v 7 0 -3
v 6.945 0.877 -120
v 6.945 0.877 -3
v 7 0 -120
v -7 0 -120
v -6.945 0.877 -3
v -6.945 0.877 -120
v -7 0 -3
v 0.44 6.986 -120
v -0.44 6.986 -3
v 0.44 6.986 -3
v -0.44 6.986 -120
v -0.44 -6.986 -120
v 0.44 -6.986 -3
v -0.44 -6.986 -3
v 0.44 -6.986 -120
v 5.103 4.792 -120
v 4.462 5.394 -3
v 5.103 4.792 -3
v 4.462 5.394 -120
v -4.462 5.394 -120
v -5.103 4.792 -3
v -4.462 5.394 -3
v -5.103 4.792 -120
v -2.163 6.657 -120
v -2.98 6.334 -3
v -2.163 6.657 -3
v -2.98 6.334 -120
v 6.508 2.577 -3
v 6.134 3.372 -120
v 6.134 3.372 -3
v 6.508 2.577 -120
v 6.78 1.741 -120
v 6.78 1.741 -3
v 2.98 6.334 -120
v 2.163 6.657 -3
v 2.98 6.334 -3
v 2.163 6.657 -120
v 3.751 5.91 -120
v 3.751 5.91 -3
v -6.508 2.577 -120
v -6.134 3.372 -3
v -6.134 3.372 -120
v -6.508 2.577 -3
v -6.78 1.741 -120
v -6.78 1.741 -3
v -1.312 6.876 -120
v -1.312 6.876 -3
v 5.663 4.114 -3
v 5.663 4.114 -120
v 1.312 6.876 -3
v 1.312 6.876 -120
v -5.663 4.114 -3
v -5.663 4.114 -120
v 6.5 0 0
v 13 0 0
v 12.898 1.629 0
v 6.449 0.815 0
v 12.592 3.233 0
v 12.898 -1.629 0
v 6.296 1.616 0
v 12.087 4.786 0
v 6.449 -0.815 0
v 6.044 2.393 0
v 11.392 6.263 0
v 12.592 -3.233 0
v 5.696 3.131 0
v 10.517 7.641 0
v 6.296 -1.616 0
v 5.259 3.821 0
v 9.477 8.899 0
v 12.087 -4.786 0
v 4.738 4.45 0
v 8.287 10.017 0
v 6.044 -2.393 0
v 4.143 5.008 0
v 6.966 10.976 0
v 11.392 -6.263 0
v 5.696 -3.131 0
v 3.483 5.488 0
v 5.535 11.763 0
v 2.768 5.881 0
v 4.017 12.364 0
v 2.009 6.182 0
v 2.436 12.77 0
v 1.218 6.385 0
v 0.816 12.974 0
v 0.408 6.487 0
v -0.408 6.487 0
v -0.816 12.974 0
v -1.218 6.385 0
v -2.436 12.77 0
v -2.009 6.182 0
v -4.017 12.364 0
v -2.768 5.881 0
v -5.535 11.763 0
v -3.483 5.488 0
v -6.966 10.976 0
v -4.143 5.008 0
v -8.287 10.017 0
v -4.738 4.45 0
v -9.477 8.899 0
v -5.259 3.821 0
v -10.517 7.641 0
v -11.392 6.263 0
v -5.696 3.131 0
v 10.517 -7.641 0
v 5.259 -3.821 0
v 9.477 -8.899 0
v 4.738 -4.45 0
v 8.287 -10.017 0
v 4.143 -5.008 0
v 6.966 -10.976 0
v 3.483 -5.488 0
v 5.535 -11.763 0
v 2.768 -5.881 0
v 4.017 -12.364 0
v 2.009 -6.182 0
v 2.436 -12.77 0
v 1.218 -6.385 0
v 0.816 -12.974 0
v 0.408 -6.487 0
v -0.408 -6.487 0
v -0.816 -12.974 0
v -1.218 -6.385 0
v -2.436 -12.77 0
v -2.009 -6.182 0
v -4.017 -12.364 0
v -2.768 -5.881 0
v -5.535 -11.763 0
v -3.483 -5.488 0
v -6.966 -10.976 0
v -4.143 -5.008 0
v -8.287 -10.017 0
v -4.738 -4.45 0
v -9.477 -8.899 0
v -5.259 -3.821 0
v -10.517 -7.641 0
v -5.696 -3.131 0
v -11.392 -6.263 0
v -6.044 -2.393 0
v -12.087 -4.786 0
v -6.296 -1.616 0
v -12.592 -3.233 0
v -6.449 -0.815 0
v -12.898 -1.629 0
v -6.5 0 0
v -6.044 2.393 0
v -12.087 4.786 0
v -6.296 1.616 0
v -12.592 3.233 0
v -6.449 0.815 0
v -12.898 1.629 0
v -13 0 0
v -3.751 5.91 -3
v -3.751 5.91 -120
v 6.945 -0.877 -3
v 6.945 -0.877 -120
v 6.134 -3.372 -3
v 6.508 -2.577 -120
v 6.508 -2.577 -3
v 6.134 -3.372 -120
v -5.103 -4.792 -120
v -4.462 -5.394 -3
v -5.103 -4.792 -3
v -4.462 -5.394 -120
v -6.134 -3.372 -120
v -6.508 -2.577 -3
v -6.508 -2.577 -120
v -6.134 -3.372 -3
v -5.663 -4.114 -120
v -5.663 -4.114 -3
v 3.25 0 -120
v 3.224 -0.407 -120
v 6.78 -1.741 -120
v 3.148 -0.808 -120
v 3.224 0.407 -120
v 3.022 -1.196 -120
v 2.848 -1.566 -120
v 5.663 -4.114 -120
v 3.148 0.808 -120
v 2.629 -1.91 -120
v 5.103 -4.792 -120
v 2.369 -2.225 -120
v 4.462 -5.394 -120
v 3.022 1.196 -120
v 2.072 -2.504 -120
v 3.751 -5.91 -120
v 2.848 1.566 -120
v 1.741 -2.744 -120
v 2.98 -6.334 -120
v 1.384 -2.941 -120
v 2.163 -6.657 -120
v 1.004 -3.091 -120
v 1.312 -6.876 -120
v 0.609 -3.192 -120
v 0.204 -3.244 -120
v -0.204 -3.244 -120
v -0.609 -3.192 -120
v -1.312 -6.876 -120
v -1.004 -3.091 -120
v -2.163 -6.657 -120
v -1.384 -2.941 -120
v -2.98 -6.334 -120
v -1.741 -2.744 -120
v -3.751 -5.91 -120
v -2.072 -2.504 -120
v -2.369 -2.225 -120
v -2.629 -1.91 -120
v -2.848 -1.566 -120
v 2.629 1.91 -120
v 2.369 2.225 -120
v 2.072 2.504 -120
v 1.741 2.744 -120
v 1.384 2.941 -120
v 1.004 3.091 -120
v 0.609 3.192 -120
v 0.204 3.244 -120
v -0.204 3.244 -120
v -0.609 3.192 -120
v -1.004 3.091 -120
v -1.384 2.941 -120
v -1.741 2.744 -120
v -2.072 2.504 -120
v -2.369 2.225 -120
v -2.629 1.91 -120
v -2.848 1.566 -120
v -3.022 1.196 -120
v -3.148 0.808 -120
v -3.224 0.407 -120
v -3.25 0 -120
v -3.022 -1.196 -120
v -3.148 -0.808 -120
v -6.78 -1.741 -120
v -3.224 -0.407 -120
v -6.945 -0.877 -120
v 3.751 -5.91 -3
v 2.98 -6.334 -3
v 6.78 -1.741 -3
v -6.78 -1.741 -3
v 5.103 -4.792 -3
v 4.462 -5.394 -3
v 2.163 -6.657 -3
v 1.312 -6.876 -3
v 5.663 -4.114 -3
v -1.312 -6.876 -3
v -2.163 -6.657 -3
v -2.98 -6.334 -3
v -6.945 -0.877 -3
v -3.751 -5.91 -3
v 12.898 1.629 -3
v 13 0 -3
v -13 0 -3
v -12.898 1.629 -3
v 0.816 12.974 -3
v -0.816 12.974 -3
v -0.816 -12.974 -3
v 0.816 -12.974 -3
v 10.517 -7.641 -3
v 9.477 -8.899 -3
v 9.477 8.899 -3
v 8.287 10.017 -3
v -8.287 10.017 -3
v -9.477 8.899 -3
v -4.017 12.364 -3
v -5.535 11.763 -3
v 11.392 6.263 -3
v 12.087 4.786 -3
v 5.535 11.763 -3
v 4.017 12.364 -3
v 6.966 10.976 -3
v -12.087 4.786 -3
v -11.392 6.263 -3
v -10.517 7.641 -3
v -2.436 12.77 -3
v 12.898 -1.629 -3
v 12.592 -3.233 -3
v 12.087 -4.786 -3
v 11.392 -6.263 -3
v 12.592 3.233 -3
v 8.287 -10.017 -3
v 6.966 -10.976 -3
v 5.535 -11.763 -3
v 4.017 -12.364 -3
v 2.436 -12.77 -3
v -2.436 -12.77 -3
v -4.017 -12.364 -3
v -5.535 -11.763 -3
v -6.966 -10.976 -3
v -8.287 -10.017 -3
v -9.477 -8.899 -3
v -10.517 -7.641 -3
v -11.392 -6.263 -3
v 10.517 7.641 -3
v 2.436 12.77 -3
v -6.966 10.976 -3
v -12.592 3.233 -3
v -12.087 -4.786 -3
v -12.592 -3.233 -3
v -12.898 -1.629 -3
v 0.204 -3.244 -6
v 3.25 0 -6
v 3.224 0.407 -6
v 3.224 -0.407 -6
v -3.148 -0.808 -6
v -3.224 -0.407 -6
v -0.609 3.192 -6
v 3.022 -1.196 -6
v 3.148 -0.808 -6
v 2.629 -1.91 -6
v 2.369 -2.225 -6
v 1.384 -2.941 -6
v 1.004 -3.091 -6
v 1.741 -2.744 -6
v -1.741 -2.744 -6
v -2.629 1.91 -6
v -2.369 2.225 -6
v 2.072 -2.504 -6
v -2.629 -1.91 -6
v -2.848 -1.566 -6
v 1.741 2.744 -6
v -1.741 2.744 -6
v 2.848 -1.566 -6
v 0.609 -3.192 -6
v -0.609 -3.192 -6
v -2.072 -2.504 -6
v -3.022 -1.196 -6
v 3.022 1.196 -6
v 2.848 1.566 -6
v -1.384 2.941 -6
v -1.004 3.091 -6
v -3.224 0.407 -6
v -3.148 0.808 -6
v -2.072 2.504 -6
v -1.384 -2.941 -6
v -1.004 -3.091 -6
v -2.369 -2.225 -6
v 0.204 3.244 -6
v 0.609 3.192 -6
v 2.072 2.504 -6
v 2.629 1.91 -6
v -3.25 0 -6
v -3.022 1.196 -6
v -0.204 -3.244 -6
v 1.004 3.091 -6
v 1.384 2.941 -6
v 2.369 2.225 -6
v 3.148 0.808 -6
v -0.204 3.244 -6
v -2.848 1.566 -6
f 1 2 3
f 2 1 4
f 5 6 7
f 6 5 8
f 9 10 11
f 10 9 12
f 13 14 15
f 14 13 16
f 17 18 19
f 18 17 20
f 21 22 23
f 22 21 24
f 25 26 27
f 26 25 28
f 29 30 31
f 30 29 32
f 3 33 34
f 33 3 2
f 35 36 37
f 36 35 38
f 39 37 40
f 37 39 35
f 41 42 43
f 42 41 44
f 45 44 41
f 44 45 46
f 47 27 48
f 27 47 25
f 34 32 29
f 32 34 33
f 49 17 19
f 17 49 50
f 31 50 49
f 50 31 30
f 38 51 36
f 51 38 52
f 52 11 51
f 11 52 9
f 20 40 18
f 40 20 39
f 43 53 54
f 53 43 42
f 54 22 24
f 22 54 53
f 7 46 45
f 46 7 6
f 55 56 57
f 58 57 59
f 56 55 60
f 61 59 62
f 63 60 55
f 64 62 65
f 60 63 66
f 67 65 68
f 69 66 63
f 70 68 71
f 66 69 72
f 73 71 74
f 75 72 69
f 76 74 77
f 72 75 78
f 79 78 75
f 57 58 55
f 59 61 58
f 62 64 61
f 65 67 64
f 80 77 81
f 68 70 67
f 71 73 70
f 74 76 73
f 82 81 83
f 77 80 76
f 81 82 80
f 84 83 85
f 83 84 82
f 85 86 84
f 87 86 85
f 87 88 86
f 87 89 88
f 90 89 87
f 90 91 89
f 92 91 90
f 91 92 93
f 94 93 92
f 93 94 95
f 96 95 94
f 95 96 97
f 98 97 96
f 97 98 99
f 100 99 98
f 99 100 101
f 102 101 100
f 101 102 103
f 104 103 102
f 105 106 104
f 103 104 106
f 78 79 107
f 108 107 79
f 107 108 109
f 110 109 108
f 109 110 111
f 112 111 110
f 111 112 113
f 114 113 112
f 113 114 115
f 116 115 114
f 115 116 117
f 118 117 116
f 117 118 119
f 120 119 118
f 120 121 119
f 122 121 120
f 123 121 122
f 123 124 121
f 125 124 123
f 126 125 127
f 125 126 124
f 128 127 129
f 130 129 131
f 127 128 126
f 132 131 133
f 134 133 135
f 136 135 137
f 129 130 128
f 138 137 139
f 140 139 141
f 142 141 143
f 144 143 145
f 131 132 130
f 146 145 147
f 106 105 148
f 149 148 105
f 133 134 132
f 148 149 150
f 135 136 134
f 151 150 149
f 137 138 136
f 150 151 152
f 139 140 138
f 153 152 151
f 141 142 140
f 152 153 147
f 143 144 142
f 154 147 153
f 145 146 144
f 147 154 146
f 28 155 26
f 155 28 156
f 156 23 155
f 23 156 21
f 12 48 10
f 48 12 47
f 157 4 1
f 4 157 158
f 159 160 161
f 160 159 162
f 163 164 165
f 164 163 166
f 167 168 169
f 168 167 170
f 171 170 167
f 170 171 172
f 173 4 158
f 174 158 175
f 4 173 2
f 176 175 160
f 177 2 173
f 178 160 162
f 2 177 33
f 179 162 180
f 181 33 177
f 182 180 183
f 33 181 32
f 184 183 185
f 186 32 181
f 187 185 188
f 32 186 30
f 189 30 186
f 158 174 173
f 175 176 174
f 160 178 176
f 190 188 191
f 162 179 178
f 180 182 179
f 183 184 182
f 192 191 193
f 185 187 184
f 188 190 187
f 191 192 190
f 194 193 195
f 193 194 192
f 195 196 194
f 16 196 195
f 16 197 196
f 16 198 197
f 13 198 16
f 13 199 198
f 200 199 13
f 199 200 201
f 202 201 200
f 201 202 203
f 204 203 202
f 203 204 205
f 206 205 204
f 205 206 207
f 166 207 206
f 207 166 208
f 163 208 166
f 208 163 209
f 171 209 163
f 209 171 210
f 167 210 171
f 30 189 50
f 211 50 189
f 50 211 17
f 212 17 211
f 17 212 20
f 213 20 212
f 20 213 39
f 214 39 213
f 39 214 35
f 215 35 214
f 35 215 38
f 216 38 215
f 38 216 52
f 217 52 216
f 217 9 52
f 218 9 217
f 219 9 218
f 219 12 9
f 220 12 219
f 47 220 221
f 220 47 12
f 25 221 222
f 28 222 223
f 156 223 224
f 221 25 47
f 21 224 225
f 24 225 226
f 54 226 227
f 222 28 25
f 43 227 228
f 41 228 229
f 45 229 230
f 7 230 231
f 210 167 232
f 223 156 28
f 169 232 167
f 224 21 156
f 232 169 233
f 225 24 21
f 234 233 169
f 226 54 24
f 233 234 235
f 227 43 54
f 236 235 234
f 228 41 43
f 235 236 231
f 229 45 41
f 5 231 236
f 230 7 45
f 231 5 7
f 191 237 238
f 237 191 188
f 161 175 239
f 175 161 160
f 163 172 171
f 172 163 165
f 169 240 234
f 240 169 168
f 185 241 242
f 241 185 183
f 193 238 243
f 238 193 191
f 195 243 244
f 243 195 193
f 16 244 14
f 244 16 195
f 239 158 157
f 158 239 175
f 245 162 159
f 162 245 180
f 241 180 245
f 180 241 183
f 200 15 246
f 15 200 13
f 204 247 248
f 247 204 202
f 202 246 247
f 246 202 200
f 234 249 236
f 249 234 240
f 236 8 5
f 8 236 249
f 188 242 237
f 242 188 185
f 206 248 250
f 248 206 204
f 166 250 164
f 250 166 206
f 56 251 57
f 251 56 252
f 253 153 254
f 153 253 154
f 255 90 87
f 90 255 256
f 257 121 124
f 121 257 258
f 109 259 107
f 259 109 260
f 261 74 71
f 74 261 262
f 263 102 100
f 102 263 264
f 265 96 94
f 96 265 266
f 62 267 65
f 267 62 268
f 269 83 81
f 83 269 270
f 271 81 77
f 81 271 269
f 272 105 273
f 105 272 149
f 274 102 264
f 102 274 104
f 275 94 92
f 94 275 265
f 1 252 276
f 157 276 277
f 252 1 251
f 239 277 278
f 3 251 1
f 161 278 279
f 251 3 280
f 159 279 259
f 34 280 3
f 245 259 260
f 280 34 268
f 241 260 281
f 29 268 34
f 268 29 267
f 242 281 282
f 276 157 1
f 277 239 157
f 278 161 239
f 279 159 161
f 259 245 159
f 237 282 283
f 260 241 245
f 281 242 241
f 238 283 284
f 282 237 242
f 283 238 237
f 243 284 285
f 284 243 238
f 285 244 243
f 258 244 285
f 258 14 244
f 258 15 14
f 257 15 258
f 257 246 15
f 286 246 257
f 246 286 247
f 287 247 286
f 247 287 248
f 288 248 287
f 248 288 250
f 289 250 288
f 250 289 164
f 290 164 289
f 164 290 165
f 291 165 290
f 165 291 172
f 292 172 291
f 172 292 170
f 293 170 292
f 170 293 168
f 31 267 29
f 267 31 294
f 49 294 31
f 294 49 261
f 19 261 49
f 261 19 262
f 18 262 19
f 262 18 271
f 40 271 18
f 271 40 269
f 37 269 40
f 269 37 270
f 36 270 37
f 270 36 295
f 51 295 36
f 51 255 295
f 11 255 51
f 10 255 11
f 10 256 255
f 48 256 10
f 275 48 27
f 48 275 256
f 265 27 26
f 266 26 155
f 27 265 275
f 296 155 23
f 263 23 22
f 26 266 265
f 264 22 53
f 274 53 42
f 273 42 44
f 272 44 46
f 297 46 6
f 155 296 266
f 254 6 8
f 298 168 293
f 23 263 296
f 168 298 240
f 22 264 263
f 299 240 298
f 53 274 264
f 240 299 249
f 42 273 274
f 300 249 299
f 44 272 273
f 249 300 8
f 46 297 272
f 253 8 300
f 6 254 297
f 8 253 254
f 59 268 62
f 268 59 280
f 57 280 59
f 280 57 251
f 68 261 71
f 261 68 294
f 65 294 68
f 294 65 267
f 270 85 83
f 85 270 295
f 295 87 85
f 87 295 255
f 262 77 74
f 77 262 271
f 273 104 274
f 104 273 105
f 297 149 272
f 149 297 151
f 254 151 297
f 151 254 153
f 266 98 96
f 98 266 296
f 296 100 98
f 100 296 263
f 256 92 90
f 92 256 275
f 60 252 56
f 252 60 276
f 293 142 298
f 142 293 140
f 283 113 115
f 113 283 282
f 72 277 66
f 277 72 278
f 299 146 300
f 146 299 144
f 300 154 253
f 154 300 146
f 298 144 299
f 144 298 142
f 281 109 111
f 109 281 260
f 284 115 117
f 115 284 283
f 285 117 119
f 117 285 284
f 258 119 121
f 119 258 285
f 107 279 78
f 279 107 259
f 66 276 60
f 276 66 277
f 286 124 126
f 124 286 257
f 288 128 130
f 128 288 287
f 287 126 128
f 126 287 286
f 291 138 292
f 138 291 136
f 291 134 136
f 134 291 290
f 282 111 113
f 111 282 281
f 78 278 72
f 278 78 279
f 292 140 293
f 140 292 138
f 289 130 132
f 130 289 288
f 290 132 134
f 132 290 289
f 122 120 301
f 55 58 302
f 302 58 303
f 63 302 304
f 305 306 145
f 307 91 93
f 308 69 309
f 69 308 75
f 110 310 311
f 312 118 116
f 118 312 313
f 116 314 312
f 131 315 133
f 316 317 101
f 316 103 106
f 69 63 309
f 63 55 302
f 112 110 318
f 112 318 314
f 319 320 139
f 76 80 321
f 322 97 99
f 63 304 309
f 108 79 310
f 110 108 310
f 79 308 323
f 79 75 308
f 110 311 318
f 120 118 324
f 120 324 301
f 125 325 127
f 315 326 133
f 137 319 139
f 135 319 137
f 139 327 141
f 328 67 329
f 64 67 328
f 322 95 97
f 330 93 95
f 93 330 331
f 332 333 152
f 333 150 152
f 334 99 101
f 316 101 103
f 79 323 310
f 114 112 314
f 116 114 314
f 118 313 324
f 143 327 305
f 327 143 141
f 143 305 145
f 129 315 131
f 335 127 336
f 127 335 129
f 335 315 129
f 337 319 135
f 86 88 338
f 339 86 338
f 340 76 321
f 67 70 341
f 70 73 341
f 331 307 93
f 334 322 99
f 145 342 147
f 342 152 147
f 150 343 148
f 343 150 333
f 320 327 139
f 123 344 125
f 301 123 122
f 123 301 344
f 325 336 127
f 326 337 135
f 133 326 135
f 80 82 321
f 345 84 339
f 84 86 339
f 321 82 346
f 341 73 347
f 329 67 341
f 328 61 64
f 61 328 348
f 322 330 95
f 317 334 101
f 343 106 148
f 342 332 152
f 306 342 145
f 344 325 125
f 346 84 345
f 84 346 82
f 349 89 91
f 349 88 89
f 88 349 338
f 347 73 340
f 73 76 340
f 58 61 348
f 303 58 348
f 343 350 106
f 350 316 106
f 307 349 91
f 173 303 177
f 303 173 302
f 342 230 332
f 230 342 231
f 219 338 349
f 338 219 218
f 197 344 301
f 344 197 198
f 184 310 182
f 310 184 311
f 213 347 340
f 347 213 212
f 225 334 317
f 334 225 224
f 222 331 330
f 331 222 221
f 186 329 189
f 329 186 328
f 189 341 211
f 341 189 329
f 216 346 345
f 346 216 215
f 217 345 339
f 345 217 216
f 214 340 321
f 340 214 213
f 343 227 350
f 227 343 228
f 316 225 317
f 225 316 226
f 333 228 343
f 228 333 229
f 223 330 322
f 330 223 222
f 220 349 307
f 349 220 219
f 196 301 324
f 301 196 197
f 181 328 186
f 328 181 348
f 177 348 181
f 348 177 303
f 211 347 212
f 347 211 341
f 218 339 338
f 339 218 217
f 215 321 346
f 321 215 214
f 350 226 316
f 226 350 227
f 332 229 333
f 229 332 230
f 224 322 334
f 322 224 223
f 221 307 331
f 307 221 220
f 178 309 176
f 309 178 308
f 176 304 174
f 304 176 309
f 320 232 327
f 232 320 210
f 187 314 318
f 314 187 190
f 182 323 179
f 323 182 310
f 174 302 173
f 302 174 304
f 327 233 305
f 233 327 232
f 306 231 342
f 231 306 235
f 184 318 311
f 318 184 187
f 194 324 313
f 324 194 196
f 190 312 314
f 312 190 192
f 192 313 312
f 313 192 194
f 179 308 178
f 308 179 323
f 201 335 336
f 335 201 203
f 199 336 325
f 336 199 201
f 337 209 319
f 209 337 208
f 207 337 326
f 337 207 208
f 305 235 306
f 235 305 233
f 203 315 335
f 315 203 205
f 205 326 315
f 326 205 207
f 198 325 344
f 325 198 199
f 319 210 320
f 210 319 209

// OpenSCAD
$fn = 50;


difference() {
	union() {
		translate(v = [0, 0, -120.0000000000]) {
			cylinder(h = 120, r = 7.0000000000);
		}
		translate(v = [0, 0, -3.0000000000]) {
			cylinder(h = 3, r = 13.0000000000);
		}
	}
	union() {
		translate(v = [0, 0, 0]) {
			rotate(a = [0, 0, 0]) {
				difference() {
					union() {
						#translate(v = [0, 0, -120.0000000000]) {
							cylinder(h = 120, r = 2.2500000000);
						}
						#translate(v = [0, 0, -6]) {
							cylinder(h = 6, r = 7.0000000000, r1 = 3.2500000000, r2 = 6.5000000000);
						}
						#translate(v = [0, 0, -120.0000000000]) {
							cylinder(h = 120, r = 3.2500000000);
						}
						#translate(v = [0, 0, -120.0000000000]) {
							cylinder(h = 120, r = 2.2500000000);
						}
					}
					union();
				}
			}
		}
	}
}
